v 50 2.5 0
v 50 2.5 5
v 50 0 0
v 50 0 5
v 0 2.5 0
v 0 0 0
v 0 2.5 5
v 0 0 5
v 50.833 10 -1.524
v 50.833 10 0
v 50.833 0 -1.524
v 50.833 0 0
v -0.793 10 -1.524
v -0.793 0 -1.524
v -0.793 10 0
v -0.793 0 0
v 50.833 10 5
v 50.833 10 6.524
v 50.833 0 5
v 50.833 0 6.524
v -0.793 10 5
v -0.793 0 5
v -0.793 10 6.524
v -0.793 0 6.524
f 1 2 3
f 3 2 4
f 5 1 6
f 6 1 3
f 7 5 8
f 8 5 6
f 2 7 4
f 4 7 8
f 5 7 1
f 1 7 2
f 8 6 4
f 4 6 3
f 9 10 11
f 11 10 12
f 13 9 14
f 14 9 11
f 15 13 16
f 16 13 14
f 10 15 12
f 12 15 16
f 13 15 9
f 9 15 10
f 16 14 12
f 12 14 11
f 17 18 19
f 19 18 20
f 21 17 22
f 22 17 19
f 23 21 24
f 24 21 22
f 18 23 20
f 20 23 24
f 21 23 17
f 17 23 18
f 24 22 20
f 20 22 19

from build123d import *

# Parameters (mm, degrees)
SKETCH1_W             = 50
SKETCH1_H             = 4.999999906
BOSS_EXTRUDE1_DEPTH   = 2.5
SKETCH1_3_W           = 51.6255
SKETCH1_3_H           = 1.524
BOSS_EXTRUDE2_DEPTH   = 10
BOSS_EXTRUDE2_2_DEPTH = 10


with BuildPart() as part:
    # Sketch1 → Boss-Extrude1 (new body)
    with BuildSketch(Plane(origin=(0, 0, 0), x_dir=(1, 0, 0), z_dir=(0, 1, 0))):
        with Locations((25, -2.499999953)):
            Rectangle(SKETCH1_W, SKETCH1_H)
    extrude(amount=BOSS_EXTRUDE1_DEPTH)


with BuildPart() as body_2:
    # Sketch1<3> → Boss-Extrude2 (new body)
    with BuildSketch(Plane(origin=(0, 0, 0), x_dir=(1, 0, 0), z_dir=(0, 1, 0))):
        with Locations((25.020089004, -5.761999906)):
            Rectangle(SKETCH1_3_W, SKETCH1_3_H)
    extrude(amount=BOSS_EXTRUDE2_DEPTH)


with BuildPart() as body_3:
    # Sketch1<3> → Boss-Extrude2 2 (new body)
    with BuildSketch(Plane(origin=(0, 0, 0), x_dir=(1, 0, 0), z_dir=(0, 1, 0))):
        with Locations((25.020089004, 0.762)):
            Rectangle(SKETCH1_3_W, SKETCH1_3_H)
    extrude(amount=BOSS_EXTRUDE2_2_DEPTH)


solid = Compound([part.part, body_2.part, body_3.part])
